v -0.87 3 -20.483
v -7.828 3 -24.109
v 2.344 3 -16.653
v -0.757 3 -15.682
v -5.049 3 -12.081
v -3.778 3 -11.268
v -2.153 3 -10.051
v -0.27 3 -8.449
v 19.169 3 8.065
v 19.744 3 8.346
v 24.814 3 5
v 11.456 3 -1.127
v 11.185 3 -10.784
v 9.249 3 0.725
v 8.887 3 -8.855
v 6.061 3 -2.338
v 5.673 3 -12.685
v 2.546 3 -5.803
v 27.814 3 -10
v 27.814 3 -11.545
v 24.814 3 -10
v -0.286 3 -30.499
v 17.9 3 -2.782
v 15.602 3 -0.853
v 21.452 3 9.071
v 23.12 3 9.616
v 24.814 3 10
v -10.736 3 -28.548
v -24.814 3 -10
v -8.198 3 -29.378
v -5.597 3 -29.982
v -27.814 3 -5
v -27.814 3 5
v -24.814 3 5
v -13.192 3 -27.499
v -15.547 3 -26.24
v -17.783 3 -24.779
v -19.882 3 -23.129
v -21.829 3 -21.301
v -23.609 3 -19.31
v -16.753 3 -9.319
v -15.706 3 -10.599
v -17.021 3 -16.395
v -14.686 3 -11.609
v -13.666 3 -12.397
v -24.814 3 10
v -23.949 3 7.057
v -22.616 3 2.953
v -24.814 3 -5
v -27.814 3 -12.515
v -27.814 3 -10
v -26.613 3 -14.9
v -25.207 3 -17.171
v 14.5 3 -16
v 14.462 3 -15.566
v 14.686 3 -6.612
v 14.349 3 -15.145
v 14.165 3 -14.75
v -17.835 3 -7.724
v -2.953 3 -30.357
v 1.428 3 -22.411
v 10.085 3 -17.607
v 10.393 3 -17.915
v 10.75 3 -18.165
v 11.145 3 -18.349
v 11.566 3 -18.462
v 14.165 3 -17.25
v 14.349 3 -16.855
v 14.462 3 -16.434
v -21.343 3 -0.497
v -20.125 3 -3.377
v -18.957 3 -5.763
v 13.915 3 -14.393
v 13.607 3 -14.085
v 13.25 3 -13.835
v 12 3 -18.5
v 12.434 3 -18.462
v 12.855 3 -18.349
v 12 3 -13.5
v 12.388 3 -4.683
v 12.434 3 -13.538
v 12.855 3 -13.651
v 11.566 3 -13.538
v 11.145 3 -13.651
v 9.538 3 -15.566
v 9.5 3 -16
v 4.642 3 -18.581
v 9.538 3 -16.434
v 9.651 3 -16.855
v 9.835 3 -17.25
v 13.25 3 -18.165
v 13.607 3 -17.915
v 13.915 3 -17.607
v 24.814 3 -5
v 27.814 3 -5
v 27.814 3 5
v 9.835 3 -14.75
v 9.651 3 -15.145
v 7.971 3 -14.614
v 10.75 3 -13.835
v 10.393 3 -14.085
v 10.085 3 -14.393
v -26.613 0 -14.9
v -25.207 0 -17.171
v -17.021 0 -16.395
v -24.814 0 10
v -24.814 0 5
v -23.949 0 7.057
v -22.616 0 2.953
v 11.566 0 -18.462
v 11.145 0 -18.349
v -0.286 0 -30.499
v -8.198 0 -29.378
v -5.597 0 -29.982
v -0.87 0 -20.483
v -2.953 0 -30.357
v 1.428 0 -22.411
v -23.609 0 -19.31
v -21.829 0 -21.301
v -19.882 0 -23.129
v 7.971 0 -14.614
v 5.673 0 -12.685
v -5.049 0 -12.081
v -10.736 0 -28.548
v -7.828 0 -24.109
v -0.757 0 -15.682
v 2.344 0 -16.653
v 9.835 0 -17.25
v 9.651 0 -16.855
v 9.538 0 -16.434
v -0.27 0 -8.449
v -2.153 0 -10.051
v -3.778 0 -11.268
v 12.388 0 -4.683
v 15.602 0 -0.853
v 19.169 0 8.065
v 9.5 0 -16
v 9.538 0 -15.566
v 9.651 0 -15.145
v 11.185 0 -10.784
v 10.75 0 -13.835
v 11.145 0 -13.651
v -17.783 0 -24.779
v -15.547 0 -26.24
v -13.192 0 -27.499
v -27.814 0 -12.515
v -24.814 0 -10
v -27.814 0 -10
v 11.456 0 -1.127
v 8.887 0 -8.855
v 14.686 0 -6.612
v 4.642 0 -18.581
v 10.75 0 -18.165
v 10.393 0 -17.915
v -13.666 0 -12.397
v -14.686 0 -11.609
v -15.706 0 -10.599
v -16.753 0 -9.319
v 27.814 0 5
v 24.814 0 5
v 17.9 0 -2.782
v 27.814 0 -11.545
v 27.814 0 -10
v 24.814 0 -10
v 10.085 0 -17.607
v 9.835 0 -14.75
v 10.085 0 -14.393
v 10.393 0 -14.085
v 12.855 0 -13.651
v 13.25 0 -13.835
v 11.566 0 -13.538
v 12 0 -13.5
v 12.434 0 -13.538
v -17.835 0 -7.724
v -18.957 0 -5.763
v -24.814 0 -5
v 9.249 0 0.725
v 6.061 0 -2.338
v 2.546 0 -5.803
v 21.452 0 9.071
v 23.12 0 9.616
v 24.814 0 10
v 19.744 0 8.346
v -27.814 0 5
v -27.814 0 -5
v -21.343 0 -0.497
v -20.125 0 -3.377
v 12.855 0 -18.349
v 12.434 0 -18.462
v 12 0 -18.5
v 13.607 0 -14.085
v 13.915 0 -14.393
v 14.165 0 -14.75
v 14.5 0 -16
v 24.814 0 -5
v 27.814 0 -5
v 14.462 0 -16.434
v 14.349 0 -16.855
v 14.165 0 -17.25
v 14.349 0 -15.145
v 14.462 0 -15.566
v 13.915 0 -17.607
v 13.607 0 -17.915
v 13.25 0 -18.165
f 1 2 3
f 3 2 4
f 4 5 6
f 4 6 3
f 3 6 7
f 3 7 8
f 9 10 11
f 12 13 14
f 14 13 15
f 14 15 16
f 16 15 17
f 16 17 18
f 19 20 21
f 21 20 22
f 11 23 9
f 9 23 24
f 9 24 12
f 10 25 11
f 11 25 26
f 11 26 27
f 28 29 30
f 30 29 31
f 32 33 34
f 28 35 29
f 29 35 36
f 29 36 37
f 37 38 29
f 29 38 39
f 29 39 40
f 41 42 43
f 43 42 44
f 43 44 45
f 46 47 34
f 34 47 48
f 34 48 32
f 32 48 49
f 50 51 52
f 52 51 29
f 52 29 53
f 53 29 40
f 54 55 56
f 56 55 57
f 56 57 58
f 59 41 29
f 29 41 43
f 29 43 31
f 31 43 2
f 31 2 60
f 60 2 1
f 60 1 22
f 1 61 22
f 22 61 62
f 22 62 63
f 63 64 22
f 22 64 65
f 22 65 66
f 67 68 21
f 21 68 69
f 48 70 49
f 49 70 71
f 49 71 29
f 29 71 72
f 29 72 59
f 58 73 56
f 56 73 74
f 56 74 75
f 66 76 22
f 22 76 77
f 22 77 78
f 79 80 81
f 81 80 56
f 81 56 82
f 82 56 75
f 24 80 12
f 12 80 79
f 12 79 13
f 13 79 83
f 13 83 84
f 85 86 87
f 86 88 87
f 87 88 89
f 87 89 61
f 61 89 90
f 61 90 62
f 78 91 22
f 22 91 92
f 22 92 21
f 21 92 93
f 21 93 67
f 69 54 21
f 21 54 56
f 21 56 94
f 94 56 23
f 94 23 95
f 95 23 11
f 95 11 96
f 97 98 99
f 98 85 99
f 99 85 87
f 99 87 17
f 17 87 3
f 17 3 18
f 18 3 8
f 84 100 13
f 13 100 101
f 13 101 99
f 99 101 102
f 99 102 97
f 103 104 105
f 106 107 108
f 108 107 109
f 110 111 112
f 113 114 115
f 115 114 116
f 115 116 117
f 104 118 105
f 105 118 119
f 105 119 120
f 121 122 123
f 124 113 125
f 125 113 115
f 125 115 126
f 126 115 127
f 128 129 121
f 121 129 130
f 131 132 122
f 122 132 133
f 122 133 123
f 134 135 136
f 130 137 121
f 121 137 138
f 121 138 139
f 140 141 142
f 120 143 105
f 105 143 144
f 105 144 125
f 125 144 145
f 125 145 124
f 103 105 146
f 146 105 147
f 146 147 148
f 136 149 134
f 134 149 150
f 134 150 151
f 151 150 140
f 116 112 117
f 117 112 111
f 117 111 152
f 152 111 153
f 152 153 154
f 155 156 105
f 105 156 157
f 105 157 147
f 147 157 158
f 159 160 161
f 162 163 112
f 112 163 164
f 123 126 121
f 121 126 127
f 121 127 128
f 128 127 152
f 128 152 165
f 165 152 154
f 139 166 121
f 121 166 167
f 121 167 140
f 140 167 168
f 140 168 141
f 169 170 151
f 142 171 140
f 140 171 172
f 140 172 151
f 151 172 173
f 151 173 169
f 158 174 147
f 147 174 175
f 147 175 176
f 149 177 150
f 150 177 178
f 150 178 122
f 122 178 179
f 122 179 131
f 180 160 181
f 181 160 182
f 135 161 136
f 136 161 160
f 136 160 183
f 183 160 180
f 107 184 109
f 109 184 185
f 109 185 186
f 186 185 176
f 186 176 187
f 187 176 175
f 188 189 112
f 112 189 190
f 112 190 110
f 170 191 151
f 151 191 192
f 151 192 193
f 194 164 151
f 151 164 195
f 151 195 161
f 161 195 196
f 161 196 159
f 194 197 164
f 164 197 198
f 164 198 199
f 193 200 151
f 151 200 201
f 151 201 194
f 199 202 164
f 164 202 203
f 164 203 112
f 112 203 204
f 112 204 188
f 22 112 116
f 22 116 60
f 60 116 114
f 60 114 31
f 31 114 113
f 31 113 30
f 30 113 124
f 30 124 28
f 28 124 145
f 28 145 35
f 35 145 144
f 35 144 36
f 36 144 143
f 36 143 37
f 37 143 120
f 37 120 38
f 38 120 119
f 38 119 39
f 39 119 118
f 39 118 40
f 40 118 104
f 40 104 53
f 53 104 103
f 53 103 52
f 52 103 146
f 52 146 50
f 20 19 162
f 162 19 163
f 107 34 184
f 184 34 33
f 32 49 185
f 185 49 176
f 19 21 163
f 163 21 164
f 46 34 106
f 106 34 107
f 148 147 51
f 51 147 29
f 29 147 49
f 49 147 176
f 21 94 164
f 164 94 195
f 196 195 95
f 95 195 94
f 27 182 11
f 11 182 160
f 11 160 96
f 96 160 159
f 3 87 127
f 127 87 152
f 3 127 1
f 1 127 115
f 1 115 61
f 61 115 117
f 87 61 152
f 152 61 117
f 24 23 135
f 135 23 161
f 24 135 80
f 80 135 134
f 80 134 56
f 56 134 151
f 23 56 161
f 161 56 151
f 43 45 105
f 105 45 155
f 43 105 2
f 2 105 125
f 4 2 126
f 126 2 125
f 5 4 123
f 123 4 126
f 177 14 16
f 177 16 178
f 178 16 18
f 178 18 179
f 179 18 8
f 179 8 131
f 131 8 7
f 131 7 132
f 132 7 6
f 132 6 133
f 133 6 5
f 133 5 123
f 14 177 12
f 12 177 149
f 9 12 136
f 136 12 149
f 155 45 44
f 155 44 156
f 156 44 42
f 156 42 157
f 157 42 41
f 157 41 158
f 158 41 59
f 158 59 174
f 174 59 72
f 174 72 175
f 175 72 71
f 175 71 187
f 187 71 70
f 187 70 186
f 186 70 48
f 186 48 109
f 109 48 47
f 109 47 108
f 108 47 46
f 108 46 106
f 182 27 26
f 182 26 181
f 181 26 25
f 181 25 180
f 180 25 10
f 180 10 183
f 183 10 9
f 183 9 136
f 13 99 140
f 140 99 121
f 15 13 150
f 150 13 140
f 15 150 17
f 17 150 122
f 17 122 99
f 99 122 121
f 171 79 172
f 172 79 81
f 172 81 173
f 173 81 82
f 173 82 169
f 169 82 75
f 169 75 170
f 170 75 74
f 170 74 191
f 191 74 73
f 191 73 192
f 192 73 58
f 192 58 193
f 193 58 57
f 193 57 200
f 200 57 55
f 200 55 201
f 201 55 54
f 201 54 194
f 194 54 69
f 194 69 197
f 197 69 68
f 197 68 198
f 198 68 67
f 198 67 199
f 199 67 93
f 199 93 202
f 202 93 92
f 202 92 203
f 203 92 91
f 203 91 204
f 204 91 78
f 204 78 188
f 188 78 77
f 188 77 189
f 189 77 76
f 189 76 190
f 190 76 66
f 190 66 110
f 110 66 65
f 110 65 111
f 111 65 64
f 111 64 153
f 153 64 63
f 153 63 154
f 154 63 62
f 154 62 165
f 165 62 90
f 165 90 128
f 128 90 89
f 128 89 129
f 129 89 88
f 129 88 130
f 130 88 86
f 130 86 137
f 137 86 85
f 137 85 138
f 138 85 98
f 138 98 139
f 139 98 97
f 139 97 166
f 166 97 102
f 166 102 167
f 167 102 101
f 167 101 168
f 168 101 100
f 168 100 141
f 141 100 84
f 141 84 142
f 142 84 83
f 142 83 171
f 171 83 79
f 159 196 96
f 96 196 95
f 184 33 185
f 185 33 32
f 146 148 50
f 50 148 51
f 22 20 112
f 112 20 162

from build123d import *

# Parameters (mm, degrees)
CROQUIS1_R                 = 30.5
SALIENTE_EXTRUIR1_DEPTH    = 3
CROQUIS2_R                 = 2
CORTAR_EXTRUIR1_DEPTH      = 4
CORTAR_EXTRUIR3_START      = -4
CORTAR_EXTRUIR3_DEPTH      = 4
CORTAR_EXTRUIR5_START      = -4
CORTAR_EXTRUIR5_DEPTH      = 4
CORTAR_EXTRUIR6_DEPTH      = 10
CROQUIS10_R                = 2.5
CORTAR_EXTRUIR7_DEPTH      = 3
CORTAR_EXTRUIR8_DEPTH      = 44.237715166
CORTAR_EXTRUIR8_DEPTH_BACK = 44.237715166
CORTAR_EXTRUIR9_START      = -10
CORTAR_EXTRUIR9_DEPTH      = 10


with BuildPart() as part:
    # Croquis1 → Saliente-Extruir1 (new body)
    with BuildSketch(Plane(origin=(0, 0, 0), x_dir=(1, 0, 0), z_dir=(0, 1, 0))):
        with Locations(Location((0, 0, 0), (0, 0, 270))):
            Circle(CROQUIS1_R)
    extrude(amount=SALIENTE_EXTRUIR1_DEPTH)

    # Croquis2 → Cortar-Extruir1 (cut)
    with BuildSketch(Plane(origin=(0, 3, 0), x_dir=(1, 0, 0), z_dir=(0, 1, 0))):
        with Locations(Location((0, 0, 0), (0, 0, 270))):
            Circle(CROQUIS2_R)
    extrude(amount=-CORTAR_EXTRUIR1_DEPTH, mode=Mode.SUBTRACT)

    # Croquis5 → Cortar-Extruir3 (cut)
    with BuildSketch(Plane(origin=(0, 3, 0), x_dir=(1, 0, 0), z_dir=(0, 1, 0)).offset(CORTAR_EXTRUIR3_START)):
        with BuildLine():
            Line((28.814059068, 5), (30.087372767, 5))
            ThreePointArc((30.087372767, 5), (29.556634924, 7.526973624), (28.814059068, 10))
            Line((28.814059068, 10), (24.814059068, 10))
            Line((24.814059068, 10), (24.814059068, 5))
            Line((24.814059068, 5), (28.814059068, 5))
        make_face()
        with BuildLine():
            Line((30.087372767, -5), (28.814059068, -5))
            Line((28.814059068, -5), (24.814059068, -5))
            Line((24.814059068, -5), (24.814059068, -10))
            Line((24.814059068, -10), (28.814059068, -10))
            ThreePointArc((28.814059068, -10), (29.556634924, -7.526973624), (30.087372767, -5))
        make_face()
        with BuildLine():
            Line((-24.814059068, 5), (-24.814059068, 10))
            Line((-24.814059068, 10), (-28.814059068, 10))
            ThreePointArc((-28.814059068, 10), (-29.556634924, 7.526973624), (-30.087372767, 5))
            Line((-30.087372767, 5), (-28.814059068, 5))
            Line((-28.814059068, 5), (-24.814059068, 5))
        make_face()
        with BuildLine():
            Line((-28.814059068, -10), (-24.814059068, -10))
            Line((-24.814059068, -10), (-24.814059068, -5))
            Line((-24.814059068, -5), (-28.814059068, -5))
            Line((-28.814059068, -5), (-30.087372767, -5))
            ThreePointArc((-30.087372767, -5), (-29.556634924, -7.526973624), (-28.814059068, -10))
        make_face()
    extrude(amount=CORTAR_EXTRUIR3_DEPTH, mode=Mode.SUBTRACT)

    # Croquis7 → Cortar-Extruir5 (cut)
    with BuildSketch(Plane(origin=(0, 3, 0), x_dir=(1, 0, 0), z_dir=(0, 1, 0)).offset(CORTAR_EXTRUIR5_START)):
        Polygon((1.428390211, 22.411430151), (-0.869743118, 20.483067322), (2.34419493, 16.652845106), (4.642328259, 18.581207935), align=None)
        with BuildLine():
            Line((-24.814059068, -10), (-28.814059068, -10))
            ThreePointArc((-28.814059068, -10), (0, -30.5), (28.814059068, -10))
            Line((28.814059068, -10), (24.814059068, -10))
            add(Edge.make_bspline(
                [(24.814059068, -10), (22.863263717, -9.657344338), (20.984021298, -8.980450277), (19.168992989, -8.065339906)],
                knots=[0, 0, 0, 0, 0.087850084, 0.087850084, 0.087850084, 0.087850084], degree=3))
            Line((19.168992989, -8.065339906), (11.455541673, 1.127193412))
            Line((11.455541673, 1.127193412), (9.248678515, -0.72458465))
            add(Edge.make_bspline(
                [(9.248678515, -0.72458465), (4.033234859, 4.116641048), (-0.646914404, 9.508508747), (-5.04935939, 12.080675515)],
                knots=[0.258799312, 0.258799312, 0.258799312, 0.258799312, 0.546435258, 0.546435258, 0.546435258, 0.546435258], degree=3))
            Line((-5.04935939, 12.080675515), (-0.757422911, 15.682037831))
            Line((-0.757422911, 15.682037831), (-7.828086618, 24.108526705))
            Line((-7.828086618, 24.108526705), (-17.020619935, 16.395075389))
            Line((-17.020619935, 16.395075389), (-13.66601447, 12.397212273))
            add(Edge.make_bspline(
                [(-13.66601447, 12.397212273), (-17.403465693, 9.897923685), (-21.056529869, 3.255841362), (-24.814059068, -10)],
                knots=[0.740637404, 0.740637404, 0.740637404, 0.740637404, 1, 1, 1, 1], degree=3))
        make_face()
        Polygon((14.685884661, 6.611763511), (12.387751331, 4.683400682), (15.60168938, 0.853178467), (17.899822709, 2.781541296), align=None)
    extrude(amount=CORTAR_EXTRUIR5_DEPTH, mode=Mode.SUBTRACT)

    # Croquis9 → Cortar-Extruir6 (cut)
    with BuildSketch(Plane(origin=(0, 3, 0), x_dir=(1, 0, 0), z_dir=(0, 1, 0))):
        Polygon((7.971418181, 14.613753061), (5.673284852, 12.685390231), (8.887222901, 8.855168016), (11.18535623, 10.783530845), align=None)
    extrude(amount=-CORTAR_EXTRUIR6_DEPTH, mode=Mode.SUBTRACT)

    # Croquis10 → Cortar-Extruir7 (cut)
    with BuildSketch(Plane(origin=(0, 3, 0), x_dir=(1, 0, 0), z_dir=(0, 1, 0))):
        with Locations(Location((12, 16, 0), (0, 0, 270))):
            Circle(CROQUIS10_R)
    extrude(amount=-CORTAR_EXTRUIR7_DEPTH, mode=Mode.SUBTRACT)

    # Croquis11 → Cortar-Extruir8 (cut, two sides: drawn at the far end of the back side and taken through both)
    with BuildSketch(Plane(origin=(0, 3, 0), x_dir=(1, 0, 0), z_dir=(0, 1, 0)).offset(-CORTAR_EXTRUIR8_DEPTH_BACK)):
        with BuildLine():
            Line((30.087372767, 5), (27.814059068, 5))
            Line((27.814059068, 5), (27.814059068, -5))
            Line((27.814059068, -5), (30.087372767, -5))
            ThreePointArc((30.087372767, -5), (30.5, 0), (30.087372767, 5))
        make_face()
        with BuildLine():
            ThreePointArc((28.814059068, 10), (28.341972277, 11.268655974), (27.814059068, 12.515115586))
            Line((27.814059068, 12.515115586), (27.814059068, 10))
            Line((27.814059068, 10), (28.814059068, 10))
        make_face()
        with BuildLine():
            Line((-27.814059068, -5), (-27.814059068, 5))
            Line((-27.814059068, 5), (-30.087372767, 5))
            ThreePointArc((-30.087372767, 5), (-30.5, 0), (-30.087372767, -5))
            Line((-30.087372767, -5), (-27.814059068, -5))
        make_face()
        with BuildLine():
            Line((-28.814059068, 10), (-27.814059068, 10))
            Line((-27.814059068, 10), (-27.814059068, 12.515115586))
            ThreePointArc((-27.814059068, 12.515115586), (-28.341972277, 11.268655974), (-28.814059068, 10))
        make_face()
    extrude(amount=CORTAR_EXTRUIR8_DEPTH + CORTAR_EXTRUIR8_DEPTH_BACK, mode=Mode.SUBTRACT)

    # Croquis12 → Cortar-Extruir9 (cut)
    with BuildSketch(Plane(origin=(0, 3, 0), x_dir=(1, 0, 0), z_dir=(0, 1, 0)).offset(CORTAR_EXTRUIR9_START)):
        with BuildLine():
            Line((-0.28585192, 30.498660441), (27.814059068, 11.545031156))
            Line((27.814059068, 11.545031156), (27.814059068, 12.515115586))
            ThreePointArc((27.814059068, 12.515115586), (16.440879495, 25.689442995), (-0.28585192, 30.498660441))
        make_face()
    extrude(amount=CORTAR_EXTRUIR9_DEPTH, mode=Mode.SUBTRACT)


solid = part.part
